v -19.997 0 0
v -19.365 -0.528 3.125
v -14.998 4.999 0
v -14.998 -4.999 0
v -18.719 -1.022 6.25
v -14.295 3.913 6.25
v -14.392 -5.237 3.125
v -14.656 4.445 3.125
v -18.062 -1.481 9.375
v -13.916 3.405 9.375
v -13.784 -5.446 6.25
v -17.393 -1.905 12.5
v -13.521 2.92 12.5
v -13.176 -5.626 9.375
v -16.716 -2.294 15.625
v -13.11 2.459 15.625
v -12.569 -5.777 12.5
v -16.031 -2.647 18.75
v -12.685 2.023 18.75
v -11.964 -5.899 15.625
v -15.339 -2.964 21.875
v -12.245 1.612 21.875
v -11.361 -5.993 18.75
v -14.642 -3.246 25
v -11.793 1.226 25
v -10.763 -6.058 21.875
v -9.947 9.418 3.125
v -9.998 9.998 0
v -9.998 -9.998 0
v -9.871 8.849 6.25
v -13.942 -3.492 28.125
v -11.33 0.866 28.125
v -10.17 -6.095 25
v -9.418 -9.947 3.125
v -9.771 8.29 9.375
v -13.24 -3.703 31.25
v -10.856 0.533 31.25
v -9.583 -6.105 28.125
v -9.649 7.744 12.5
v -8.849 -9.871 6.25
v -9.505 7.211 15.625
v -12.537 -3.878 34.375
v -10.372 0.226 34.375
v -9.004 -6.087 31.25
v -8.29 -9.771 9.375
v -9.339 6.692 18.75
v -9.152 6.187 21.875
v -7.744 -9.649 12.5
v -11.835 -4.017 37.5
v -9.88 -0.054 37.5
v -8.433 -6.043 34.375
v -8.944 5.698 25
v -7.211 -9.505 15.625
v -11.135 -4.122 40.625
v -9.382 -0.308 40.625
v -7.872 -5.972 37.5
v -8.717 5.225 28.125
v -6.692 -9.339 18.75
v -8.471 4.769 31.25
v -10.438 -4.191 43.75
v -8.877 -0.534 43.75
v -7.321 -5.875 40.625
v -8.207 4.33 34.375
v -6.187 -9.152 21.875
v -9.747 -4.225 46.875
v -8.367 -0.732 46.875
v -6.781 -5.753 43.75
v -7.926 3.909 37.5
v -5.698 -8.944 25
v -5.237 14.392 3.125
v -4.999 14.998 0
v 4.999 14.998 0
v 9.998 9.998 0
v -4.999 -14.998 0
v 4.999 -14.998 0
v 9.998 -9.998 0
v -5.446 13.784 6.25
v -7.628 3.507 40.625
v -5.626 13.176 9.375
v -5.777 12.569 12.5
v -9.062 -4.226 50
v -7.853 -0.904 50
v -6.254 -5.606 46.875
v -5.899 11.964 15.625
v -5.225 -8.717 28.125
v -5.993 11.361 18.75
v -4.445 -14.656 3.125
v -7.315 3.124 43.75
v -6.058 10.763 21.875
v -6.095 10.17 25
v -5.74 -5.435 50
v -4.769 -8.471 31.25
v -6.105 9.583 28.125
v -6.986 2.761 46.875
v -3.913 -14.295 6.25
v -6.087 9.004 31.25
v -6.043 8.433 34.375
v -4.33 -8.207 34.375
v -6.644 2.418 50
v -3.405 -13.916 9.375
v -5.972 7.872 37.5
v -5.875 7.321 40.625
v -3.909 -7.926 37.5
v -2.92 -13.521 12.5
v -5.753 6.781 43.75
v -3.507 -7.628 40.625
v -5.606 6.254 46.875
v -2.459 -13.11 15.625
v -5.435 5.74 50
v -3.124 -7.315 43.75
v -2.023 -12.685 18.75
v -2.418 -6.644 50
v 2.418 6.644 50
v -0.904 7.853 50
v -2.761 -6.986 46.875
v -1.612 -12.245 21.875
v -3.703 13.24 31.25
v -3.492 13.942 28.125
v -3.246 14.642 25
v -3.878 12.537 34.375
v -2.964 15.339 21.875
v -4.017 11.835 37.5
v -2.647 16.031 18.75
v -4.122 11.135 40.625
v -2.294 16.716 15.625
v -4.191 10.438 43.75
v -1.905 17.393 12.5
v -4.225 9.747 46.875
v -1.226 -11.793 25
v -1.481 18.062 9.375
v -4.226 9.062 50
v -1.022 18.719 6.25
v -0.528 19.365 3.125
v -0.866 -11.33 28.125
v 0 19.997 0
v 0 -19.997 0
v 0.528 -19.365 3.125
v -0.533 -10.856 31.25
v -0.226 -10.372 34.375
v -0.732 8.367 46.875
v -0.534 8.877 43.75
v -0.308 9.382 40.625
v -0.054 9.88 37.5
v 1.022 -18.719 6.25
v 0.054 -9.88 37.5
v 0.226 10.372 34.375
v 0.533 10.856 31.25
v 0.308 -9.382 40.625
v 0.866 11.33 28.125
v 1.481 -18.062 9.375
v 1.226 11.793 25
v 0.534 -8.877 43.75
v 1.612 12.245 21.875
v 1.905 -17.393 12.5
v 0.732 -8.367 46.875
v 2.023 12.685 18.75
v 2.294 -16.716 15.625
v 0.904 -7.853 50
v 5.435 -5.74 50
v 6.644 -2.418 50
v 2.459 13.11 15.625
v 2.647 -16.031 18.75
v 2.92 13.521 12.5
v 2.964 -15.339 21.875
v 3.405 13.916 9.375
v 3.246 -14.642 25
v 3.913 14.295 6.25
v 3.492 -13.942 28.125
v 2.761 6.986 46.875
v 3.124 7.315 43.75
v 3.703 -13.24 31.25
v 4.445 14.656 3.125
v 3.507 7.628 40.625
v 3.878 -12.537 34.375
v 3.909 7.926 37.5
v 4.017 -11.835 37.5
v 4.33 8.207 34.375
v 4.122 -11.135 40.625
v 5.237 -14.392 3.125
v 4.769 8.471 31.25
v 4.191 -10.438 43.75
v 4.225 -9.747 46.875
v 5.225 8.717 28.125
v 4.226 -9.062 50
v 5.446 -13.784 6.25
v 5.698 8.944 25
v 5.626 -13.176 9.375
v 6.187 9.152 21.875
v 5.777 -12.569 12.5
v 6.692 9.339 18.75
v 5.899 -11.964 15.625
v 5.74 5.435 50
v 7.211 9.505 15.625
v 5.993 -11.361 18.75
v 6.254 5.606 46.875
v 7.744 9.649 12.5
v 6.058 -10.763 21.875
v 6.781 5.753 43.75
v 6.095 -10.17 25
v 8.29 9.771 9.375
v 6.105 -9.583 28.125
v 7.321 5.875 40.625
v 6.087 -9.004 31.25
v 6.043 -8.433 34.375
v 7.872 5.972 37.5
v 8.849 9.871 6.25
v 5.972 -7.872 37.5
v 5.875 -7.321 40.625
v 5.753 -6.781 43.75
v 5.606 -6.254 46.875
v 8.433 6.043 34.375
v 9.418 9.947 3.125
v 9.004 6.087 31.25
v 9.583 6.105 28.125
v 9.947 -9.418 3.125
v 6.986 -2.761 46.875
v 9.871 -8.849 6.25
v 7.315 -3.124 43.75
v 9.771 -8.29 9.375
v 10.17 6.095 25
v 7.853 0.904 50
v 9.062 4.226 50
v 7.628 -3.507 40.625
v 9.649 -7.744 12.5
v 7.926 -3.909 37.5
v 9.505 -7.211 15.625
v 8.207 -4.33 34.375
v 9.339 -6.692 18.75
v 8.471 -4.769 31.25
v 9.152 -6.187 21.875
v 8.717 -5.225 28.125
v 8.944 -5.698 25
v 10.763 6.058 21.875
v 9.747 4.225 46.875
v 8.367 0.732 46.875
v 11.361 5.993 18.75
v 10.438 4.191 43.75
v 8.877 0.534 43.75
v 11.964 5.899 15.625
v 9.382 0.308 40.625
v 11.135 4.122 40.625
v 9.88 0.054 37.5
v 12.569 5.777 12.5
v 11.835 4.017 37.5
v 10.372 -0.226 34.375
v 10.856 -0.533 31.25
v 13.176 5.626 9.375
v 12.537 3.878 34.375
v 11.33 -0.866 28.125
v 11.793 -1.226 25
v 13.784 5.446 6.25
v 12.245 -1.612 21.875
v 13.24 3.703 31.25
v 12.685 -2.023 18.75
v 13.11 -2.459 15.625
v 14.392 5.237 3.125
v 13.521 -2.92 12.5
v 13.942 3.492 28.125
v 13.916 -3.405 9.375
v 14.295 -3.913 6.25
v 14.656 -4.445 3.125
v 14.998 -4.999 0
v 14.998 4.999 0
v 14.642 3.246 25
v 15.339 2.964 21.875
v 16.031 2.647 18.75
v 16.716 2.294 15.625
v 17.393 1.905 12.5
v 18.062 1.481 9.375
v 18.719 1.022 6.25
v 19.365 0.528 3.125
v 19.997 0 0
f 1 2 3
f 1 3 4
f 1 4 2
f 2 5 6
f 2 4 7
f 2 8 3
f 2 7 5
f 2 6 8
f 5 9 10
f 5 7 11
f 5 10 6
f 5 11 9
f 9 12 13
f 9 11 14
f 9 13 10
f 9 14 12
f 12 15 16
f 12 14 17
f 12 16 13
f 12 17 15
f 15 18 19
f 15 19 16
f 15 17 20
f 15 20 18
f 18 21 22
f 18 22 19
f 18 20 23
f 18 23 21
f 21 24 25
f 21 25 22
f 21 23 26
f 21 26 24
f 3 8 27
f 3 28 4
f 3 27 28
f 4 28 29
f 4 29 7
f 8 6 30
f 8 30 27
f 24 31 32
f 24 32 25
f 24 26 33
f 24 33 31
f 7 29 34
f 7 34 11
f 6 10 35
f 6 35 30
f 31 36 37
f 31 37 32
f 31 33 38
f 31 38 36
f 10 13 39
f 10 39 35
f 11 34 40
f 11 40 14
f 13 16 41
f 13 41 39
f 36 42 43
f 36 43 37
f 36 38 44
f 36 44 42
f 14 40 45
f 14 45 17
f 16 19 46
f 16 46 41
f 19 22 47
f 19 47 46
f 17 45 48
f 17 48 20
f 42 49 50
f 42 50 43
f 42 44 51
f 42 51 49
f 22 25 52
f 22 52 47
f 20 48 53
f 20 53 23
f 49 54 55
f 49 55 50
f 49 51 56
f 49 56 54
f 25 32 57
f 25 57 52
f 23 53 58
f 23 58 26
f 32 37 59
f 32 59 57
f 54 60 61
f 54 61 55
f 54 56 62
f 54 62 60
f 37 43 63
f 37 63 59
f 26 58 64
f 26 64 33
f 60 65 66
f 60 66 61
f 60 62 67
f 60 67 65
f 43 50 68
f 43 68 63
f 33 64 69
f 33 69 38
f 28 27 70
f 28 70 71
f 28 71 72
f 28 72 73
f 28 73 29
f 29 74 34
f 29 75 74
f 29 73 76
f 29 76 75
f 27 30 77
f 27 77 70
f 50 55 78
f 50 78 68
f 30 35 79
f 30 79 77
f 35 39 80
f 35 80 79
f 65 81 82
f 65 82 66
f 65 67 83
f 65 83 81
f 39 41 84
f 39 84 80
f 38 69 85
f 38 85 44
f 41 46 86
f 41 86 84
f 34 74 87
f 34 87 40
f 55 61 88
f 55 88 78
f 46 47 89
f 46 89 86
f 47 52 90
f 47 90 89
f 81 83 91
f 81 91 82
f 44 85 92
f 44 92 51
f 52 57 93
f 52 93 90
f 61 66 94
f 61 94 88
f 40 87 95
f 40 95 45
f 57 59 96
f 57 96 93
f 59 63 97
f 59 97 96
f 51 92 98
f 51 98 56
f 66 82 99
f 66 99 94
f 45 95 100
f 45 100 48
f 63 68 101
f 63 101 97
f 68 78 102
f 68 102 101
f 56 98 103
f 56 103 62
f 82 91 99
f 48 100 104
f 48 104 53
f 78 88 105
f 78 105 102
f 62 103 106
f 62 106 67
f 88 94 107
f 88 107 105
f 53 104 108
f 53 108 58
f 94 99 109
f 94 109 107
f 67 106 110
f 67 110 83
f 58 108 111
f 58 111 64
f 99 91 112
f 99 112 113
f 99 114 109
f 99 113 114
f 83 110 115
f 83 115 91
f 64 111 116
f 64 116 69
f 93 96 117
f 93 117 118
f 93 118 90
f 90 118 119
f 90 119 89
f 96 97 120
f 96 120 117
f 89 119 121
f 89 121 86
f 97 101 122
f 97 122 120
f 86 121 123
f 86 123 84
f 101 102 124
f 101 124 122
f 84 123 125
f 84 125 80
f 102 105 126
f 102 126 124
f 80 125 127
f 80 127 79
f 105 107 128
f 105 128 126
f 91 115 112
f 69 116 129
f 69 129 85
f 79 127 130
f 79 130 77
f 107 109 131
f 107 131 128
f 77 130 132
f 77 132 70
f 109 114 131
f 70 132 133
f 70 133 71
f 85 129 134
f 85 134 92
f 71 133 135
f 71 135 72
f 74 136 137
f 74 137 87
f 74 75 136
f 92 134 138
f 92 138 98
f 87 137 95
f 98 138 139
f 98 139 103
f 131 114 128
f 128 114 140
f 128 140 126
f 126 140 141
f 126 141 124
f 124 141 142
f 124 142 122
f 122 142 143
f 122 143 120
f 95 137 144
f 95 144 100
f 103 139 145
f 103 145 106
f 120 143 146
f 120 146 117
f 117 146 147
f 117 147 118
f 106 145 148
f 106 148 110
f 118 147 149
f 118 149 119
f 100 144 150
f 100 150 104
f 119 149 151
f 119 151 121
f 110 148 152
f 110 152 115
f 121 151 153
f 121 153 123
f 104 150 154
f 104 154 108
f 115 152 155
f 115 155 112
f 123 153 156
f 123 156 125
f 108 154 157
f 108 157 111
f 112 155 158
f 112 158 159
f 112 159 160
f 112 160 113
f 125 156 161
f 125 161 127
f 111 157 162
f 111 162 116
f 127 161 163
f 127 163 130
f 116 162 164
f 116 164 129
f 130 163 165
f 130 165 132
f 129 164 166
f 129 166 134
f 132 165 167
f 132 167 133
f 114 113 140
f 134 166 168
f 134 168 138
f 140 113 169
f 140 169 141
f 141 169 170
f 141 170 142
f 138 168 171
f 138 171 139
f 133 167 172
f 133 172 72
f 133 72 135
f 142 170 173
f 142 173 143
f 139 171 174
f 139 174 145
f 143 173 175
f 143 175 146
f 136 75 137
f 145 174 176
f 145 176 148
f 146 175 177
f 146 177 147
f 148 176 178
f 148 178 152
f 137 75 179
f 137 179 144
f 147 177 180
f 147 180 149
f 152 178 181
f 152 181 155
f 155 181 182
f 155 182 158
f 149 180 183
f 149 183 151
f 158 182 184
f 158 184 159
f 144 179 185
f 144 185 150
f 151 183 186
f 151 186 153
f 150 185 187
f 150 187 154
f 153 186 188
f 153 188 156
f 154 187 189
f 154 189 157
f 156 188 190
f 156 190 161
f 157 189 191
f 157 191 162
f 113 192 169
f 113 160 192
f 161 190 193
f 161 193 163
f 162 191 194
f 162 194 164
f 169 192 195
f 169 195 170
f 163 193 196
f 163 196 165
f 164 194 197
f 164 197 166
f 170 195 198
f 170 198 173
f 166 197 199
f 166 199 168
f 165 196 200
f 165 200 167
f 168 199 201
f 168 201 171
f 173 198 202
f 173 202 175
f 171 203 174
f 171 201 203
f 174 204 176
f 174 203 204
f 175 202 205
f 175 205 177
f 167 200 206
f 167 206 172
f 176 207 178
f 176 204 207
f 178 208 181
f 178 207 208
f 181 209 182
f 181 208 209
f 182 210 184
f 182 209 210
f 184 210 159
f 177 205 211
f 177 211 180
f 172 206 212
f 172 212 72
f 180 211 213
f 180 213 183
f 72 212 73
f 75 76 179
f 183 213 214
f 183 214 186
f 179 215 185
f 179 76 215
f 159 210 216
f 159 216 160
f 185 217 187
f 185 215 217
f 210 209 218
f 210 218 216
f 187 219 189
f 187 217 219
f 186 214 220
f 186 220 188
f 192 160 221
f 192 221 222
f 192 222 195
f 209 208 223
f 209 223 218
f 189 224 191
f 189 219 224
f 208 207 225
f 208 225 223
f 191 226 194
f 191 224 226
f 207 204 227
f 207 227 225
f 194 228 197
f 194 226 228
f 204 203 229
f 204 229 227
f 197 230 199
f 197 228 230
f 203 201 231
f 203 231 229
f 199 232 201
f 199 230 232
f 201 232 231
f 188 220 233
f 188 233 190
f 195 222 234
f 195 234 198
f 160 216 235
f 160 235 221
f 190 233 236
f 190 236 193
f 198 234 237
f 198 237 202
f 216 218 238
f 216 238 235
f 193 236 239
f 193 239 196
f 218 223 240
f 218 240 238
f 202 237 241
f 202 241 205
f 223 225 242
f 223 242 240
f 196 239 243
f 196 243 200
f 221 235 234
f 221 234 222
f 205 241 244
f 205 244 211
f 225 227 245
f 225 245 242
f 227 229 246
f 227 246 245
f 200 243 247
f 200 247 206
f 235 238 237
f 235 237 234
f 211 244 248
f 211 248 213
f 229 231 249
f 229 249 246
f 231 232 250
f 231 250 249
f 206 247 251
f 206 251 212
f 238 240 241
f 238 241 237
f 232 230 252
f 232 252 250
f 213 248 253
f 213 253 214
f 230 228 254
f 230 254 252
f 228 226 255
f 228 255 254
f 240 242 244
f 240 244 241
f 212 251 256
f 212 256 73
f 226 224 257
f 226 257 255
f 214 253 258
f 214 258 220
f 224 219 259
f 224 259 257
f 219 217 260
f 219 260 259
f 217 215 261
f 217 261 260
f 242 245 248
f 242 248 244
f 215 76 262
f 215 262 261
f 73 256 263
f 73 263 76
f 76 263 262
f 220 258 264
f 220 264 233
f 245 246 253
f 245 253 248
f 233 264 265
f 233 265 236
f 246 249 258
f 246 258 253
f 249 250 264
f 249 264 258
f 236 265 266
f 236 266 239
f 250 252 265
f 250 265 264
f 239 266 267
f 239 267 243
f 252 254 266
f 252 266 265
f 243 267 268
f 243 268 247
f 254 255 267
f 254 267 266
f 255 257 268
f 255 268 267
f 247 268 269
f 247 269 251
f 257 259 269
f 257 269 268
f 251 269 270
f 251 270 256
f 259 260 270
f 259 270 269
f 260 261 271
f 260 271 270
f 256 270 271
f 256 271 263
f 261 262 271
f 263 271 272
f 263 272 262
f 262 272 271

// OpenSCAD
// Start: lazy_union
default_5_default_5();
// End: lazy_union

// Modules.

// 'PartMaterial undef-default - default 5.0'
module default_5_default_5() {
  // 'None : _combine_solids_and_holes'
  union() {
    // 'scaled : _combine_solids_and_holes'
    union() {
      // 'prism'
      multmatrix(m=[[-1.0, -0.0, -0.0, -0.0], [-0.0, -1.0, -0.0, -0.0], [0.0, 0.0, 1.0, 0.0], [0.0, 0.0, 0.0, 1.0]]) {
        // 'prism : _combine_solids_and_holes'
        union() {
          // 'prism'
          polyhedron(points=[[-19.996979771955562, 0.0, 0.0], [-14.997734828966673, 4.999244942988891, 0.0], [-9.998489885977783, 9.998489885977781, 0.0], [-4.999244942988891, 14.99773482896667, 0.0], [-1.2244618635169875e-15, 19.996979771955562, 0.0], [4.999244942988891, 14.99773482896667, 0.0], [9.998489885977781, 9.998489885977781, 0.0], [14.99773482896667, 4.999244942988892, 0.0], [19.996979771955562, 2.448923727033975e-15, 0.0], [14.997734828966673, -4.999244942988888, 0.0], [9.998489885977783, -9.99848988597778, 0.0], [4.999244942988893, -14.99773482896667, 0.0], [3.673385590550962e-15, -19.996979771955562, 0.0], [-4.999244942988888, -14.997734828966674, 0.0], [-9.99848988597778, -9.998489885977785, 0.0], [-14.99773482896667, -4.999244942988895, 0.0], [-19.364871144392705, -0.5282258913729057, 3.125], [-14.655709831137758, 4.445048367568498, 3.125], [-9.946548517882807, 9.4183226265099, 3.125], [-5.237387204627856, 14.391596885451303, 3.125], [-0.5282258913729069, 19.364871144392705, 3.125], [4.445048367568498, 14.655709831137756, 3.125], [9.4183226265099, 9.946548517882805, 3.125], [14.391596885451303, 5.237387204627857, 3.125], [19.364871144392705, 0.528225891372908, 3.125], [14.655709831137758, -4.4450483675684955, 3.125], [9.946548517882807, -9.418322626509898, 3.125], [5.237387204627858, -14.391596885451303, 3.125], [0.5282258913729092, -19.364871144392705, 3.125], [-4.445048367568495, -14.65570983113776, 3.125], [-9.418322626509898, -9.946548517882809, 3.125], [-14.391596885451303, -5.23738720462786, 3.125], [-18.719291101775188, -1.0219925498751101, 6.25], [-14.294966463800169, 3.913328363037465, 6.25], [-9.870641825825151, 8.848649275950038, 6.25], [-5.446317187850131, 13.783970188862613, 6.25], [-1.0219925498751112, 18.719291101775188, 6.25], [3.9133283630374653, 14.294966463800167, 6.25], [8.848649275950038, 9.87064182582515, 6.25], [13.783970188862613, 5.4463171878501315, 6.25], [18.719291101775188, 1.0219925498751123, 6.25], [14.294966463800169, -3.9133283630374613, 6.25], [9.87064182582515, -8.848649275950036, 6.25], [5.446317187850132, -13.783970188862613, 6.25], [1.0219925498751135, -18.719291101775188, 6.25], [-3.9133283630374613, -14.29496646380017, 6.25], [-8.848649275950036, -9.870641825825153, 6.25], [-13.783970188862613, -5.446317187850134, 6.25], [-18.061648285696783, -1.480970791419059, 9.375], [-13.916478912127355, 3.4046839778599027, 9.375], [-9.771309538557922, 8.290338747138861, 9.375], [-5.626140164988491, 13.175993516417822, 9.375], [-1.4809707914190602, 18.061648285696783, 9.375], [3.4046839778599027, 13.916478912127353, 9.375], [8.290338747138863, 9.77130953855792, 9.375], [13.175993516417822, 5.626140164988492, 9.375], [18.061648285696783, 1.4809707914190613, 9.375], [13.916478912127355, -3.404683977859899, 9.375], [9.771309538557922, -8.290338747138861, 9.375], [5.626140164988493, -13.175993516417822, 9.375], [1.4809707914190624, -18.061648285696783, 9.375], [-3.4046839778598987, -13.916478912127356, 9.375], [-8.29033874713886, -9.771309538557924, 9.375], [-13.175993516417822, -5.626140164988494, 9.375], [-17.39335892666395, -1.9048826074694092, 12.5], [-13.521239846865315, 2.9196777760639314, 12.5], [-9.649120767066682, 7.744238159597271, 12.5], [-5.777001687268045, 12.568798543130608, 12.5], [-1.9048826074694103, 17.39335892666395, 12.5], [2.9196777760639314, 13.521239846865313, 12.5], [7.744238159597271, 9.64912076706668, 12.5], [12.568798543130608, 5.777001687268045, 12.5], [17.39335892666395, 1.9048826074694114, 12.5], [13.521239846865315, -2.919677776063928, 12.5], [9.64912076706668, -7.744238159597269, 12.5], [5.777001687268046, -12.568798543130608, 12.5], [1.9048826074694123, -17.39335892666395, 12.5], [-2.919677776063928, -13.521239846865317, 12.5], [-7.744238159597268, -9.64912076706668, 12.5], [-12.568798543130608, -5.777001687268048, 12.5], [-16.715845101425003, -2.2935013247032767, 15.625], [-13.110259157244572, 2.458835281828794, 15.625], [-9.504673213064141, 7.211171888360863, 15.625], [-5.899087268883709, 11.963508494892933, 15.625], [-2.2935013247032776, 16.715845101425003, 15.625], [2.4588352818287946, 13.110259157244572, 15.625], [7.211171888360863, 9.504673213064141, 15.625], [11.963508494892933, 5.89908726888371, 15.625], [16.715845101425003, 2.293501324703279, 15.625], [13.110259157244572, -2.4588352818287915, 15.625], [9.504673213064141, -7.2111718883608615, 15.625], [5.899087268883711, -11.963508494892933, 15.625], [2.29350132470328, -16.715845101425003, 15.625], [-2.458835281828791, -13.110259157244574, 15.625], [-7.211171888360861, -9.504673213064143, 15.625], [-11.963508494892933, -5.8990872688837115, 15.625], [-16.03053298749188, -2.646651707711957, 18.75], [-12.684562667546901, 2.0226444660890026, 18.75], [-9.338592347601919, 6.691940639889962, 18.75], [-5.992622027656938, 11.361236813690919, 18.75], [-2.646651707711958, 16.03053298749188, 18.75], [2.0226444660890026, 12.6845626675469, 18.75], [6.691940639889962, 9.338592347601919, 18.75], [11.361236813690919, 5.992622027656939, 18.75], [16.03053298749188, 2.6466517077119587, 18.75], [12.6845626675469, -2.022644466089, 18.75], [9.338592347601919, -6.69194063988996, 18.75], [5.99262202765694, -11.361236813690919, 18.75], [2.64665170771196, -16.03053298749188, 18.75], [-2.022644466089, -12.684562667546901, 18.75], [-6.69194063988996, -9.33859234760192, 18.75], [-11.361236813690919, -5.9926220276569415, 18.75], [-15.338851116664092, -2.9642100047167173, 21.875], [-12.24519083867725, 1.611555275628485, 21.875], [-9.151530560690405, 6.187320555973686, 21.875], [-6.057870282703561, 10.763085836318888, 21.875], [-2.964210004716718, 15.338851116664092, 21.875], [1.6115552756284854, 12.245190838677248, 21.875], [6.187320555973687, 9.151530560690404, 21.875], [10.763085836318888, 6.057870282703562, 21.875], [15.338851116664092, 2.964210004716719, 21.875], [12.24519083867725, -1.6115552756284823, 21.875], [9.151530560690405, -6.187320555973685, 21.875], [6.057870282703563, -10.763085836318888, 21.875], [2.96421000471672, -15.338851116664092, 21.875], [-1.6115552756284823, -12.245190838677251, 21.875], [-6.187320555973685, -9.151530560690407, 21.875], [-10.763085836318888, -6.057870282703565, 21.875], [-14.642228629363718, -3.246103936327586, 25.0], [-11.793197456104686, 1.2259792050952405, 25.0], [-8.944166282845654, 5.698062346518066, 25.0], [-6.09513510958662, 10.170145487940891, 25.0], [-3.2461039363275868, 14.642228629363718, 25.0], [1.2259792050952405, 11.793197456104684, 25.0], [5.698062346518066, 8.944166282845652, 25.0], [10.170145487940891, 6.09513510958662, 25.0], [14.642228629363718, 3.2461039363275876, 25.0], [11.793197456104686, -1.2259792050952378, 25.0], [8.944166282845652, -5.698062346518064, 25.0], [6.095135109586621, -10.170145487940891, 25.0], [3.2461039363275885, -14.642228629363718, 25.0], [-1.2259792050952374, -11.793197456104686, 25.0], [-5.698062346518063, -8.944166282845654, 25.0], [-10.170145487940891, -6.0951351095866215, 25.0], [-13.942093531587751, -3.492312627430278, 28.125], [-11.329648305548384, 0.8662889123242294, 28.125], [-8.717203079509016, 5.2248904520787365, 28.125], [-6.104757853469646, 9.583491991833244, 28.125], [-3.492312627430279, 13.942093531587751, 28.125], [0.8662889123242299, 11.329648305548384, 28.125], [5.2248904520787365, 8.717203079509014, 28.125], [9.583491991833244, 6.104757853469648, 28.125], [13.942093531587751, 3.49231262743028, 28.125], [11.329648305548382, -0.8662889123242272, 28.125], [8.717203079509016, -5.224890452078735, 28.125], [6.104757853469648, -9.583491991833244, 28.125], [3.4923126274302807, -13.942093531587751, 28.125], [-0.8662889123242272, -11.329648305548384, 28.125], [-5.224890452078734, -8.717203079509018, 28.125], [-9.583491991833244, -6.10475785346965, 28.125], [-13.239870956279901, -3.702866482342555, 31.25], [-10.855619837795565, 0.5328178773130596, 31.25], [-8.47136871931123, 4.768502236968673, 31.25], [-6.0871176008268915, 9.004186596624287, 31.25], [-3.702866482342556, 13.239870956279901, 31.25], [0.5328178773130596, 10.855619837795565, 31.25], [4.768502236968673, 8.471368719311227, 31.25], [9.004186596624287, 6.087117600826893, 31.25], [13.239870956279901, 3.7028664823425568, 31.25], [10.855619837795563, -0.5328178773130574, 31.25], [8.47136871931123, -4.768502236968672, 31.25], [6.087117600826893, -9.004186596624287, 31.25], [3.702866482342557, -13.239870956279901, 31.25], [-0.532817877313057, -10.855619837795565, 31.25], [-4.768502236968672, -8.471368719311231, 31.25], [-9.004186596624287, -6.087117600826895, 31.25], [-12.536981430918008, -3.8778470034372194, 34.375], [-10.372197824047811, 0.2258601051515874, 34.375], [-8.207414217177615, 4.329567213740393, 34.375], [-6.042630610307417, 8.4332743223292, 34.375], [-3.8778470034372203, 12.536981430918008, 34.375], [0.22586010515158783, 10.37219782404781, 34.375], [4.329567213740394, 8.207414217177615, 34.375], [8.4332743223292, 6.042630610307418, 34.375], [12.536981430918008, 3.8778470034372208, 34.375], [10.372197824047811, -0.22586010515158517, 34.375], [8.207414217177615, -4.329567213740393, 34.375], [6.042630610307418, -8.433274322329199, 34.375], [3.8778470034372217, -12.536981430918008, 34.375], [-0.22586010515158517, -10.372197824047811, 34.375], [-4.329567213740392, -8.207414217177615, 34.375], [-8.433274322329199, -6.04263061030742, 34.375], [-11.834839153105555, -4.017386553484709, 37.5], [-9.880476003200346, -0.05433012683714189, 37.5], [-7.926112853295134, 3.908726299810423, 37.5], [-5.971749703389921, 7.871782726457989, 37.5], [-4.01738655348471, 11.834839153105555, 37.5], [-0.054330126837141446, 9.880476003200345, 37.5], [3.9087262998104233, 7.926112853295132, 37.5], [7.8717827264579885, 5.971749703389921, 37.5], [11.834839153105555, 4.017386553484711, 37.5], [9.880476003200345, 0.05433012683714411, 37.5], [7.926112853295134, -3.908726299810422, 37.5], [5.971749703389921, -7.8717827264579885, 37.5], [4.017386553484711, -11.834839153105555, 37.5], [0.054330126837144554, -9.880476003200345, 37.5], [-3.9087262998104215, -7.926112853295134, 37.5], [-7.8717827264579885, -5.971749703389923, 37.5], [-11.134850275946418, -4.121668062023674, 40.625], [-9.381554722465731, -0.3075384775311507, 40.625], [-7.628259168985046, 3.5065911069613716, 40.625], [-5.87496361550436, 7.320720691453895, 40.625], [-4.121668062023675, 11.134850275946418, 40.625], [-0.30753847753115027, 9.381554722465731, 40.625], [3.506591106961372, 7.628259168985046, 40.625], [7.320720691453894, 5.8749636155043605, 40.625], [11.134850275946418, 4.121668062023676, 40.625], [9.381554722465731, 0.30753847753115293, 40.625], [7.628259168985046, -3.5065911069613707, 40.625], [5.874963615504361, -7.320720691453894, 40.625], [4.121668062023676, -11.134850275946418, 40.625], [0.3075384775311534, -9.381554722465733, 40.625], [-3.50659110696137, -7.628259168985047, 40.625], [-7.320720691453894, -5.874963615504361, 40.625], [-10.438411204970931, -4.19092467612307, 43.75], [-8.876539572758967, -0.5335907058495692, 43.75], [-7.314667940547002, 3.1237432644239305, 43.75], [-5.752796308335036, 6.78107723469743, 43.75], [-4.190924676123071, 10.438411204970931, 43.75], [-0.5335907058495688, 8.876539572758965, 43.75], [3.1237432644239305, 7.314667940547, 43.75], [6.78107723469743, 5.752796308335036, 43.75], [10.438411204970931, 4.190924676123071, 43.75], [8.876539572758965, 0.533590705849571, 43.75], [7.314667940547001, -3.1237432644239296, 43.75], [5.752796308335036, -6.78107723469743, 43.75], [4.190924676123072, -10.438411204970931, 43.75], [0.5335907058495715, -8.876539572758967, 43.75], [-3.123743264423929, -7.314667940547002, 43.75], [-6.781077234697429, -5.7527963083350375, 43.75], [-9.746906908368677, -4.225439355953999, 46.875], [-8.366540020265008, -0.73235278987333, 46.875], [-6.986173132161339, 2.7607337762073385, 46.875], [-5.6058062440576695, 6.253820342288007, 46.875], [-4.225439355954, 9.746906908368677, 46.875], [-0.7323527898733295, 8.366540020265008, 46.875], [2.760733776207339, 6.986173132161339, 46.875], [6.253820342288007, 5.6058062440576695, 46.875], [9.746906908368677, 4.225439355954, 46.875], [8.366540020265008, 0.7323527898733317, 46.875], [6.986173132161339, -2.7607337762073376, 46.875], [5.6058062440576695, -6.253820342288007, 46.875], [4.225439355954001, -9.746906908368677, 46.875], [0.7323527898733317, -8.366540020265008, 46.875], [-2.7607337762073376, -6.98617313216134, 46.875], [-6.253820342288007, -5.605806244057671, 46.875], [-9.061709242268849, -4.225544415643894, 50.0], [-7.852668035612611, -0.903731001165708, 50.0], [-6.643626828956372, 2.418082413312477, 50.0], [-5.434585622300133, 5.739895827790662, 50.0], [-4.225544415643895, 9.061709242268849, 50.0], [-0.9037310011657076, 7.85266803561261, 50.0], [2.4180824133124776, 6.643626828956371, 50.0], [5.739895827790662, 5.434585622300133, 50.0], [9.061709242268849, 4.225544415643895, 50.0], [7.85266803561261, 0.9037310011657098, 50.0], [6.643626828956371, -2.4180824133124763, 50.0], [5.434585622300133, -5.739895827790662, 50.0], [4.2255444156438955, -9.061709242268849, 50.0], [0.9037310011657103, -7.852668035612611, 50.0], [-2.418082413312476, -6.643626828956373, 50.0], [-5.7398958277906615, -5.434585622300135, 50.0]], faces=[[1, 17, 16, 0], [2, 18, 17, 1], [3, 19, 18, 2], [4, 20, 19, 3], [5, 21, 20, 4], [6, 22, 21, 5], [7, 23, 22, 6], [8, 24, 23, 7], [9, 25, 24, 8], [10, 26, 25, 9], [11, 27, 26, 10], [12, 28, 27, 11], [13, 29, 28, 12], [14, 30, 29, 13], [15, 31, 30, 14], [0, 16, 31, 15], [17, 33, 32, 16], [18, 34, 33, 17], [19, 35, 34, 18], [20, 36, 35, 19], [21, 37, 36, 20], [22, 38, 37, 21], [23, 39, 38, 22], [24, 40, 39, 23], [25, 41, 40, 24], [26, 42, 41, 25], [27, 43, 42, 26], [28, 44, 43, 27], [29, 45, 44, 28], [30, 46, 45, 29], [31, 47, 46, 30], [16, 32, 47, 31], [33, 49, 48, 32], [34, 50, 49, 33], [35, 51, 50, 34], [36, 52, 51, 35], [37, 53, 52, 36], [38, 54, 53, 37], [39, 55, 54, 38], [40, 56, 55, 39], [41, 57, 56, 40], [42, 58, 57, 41], [43, 59, 58, 42], [44, 60, 59, 43], [45, 61, 60, 44], [46, 62, 61, 45], [47, 63, 62, 46], [32, 48, 63, 47], [49, 65, 64, 48], [50, 66, 65, 49], [51, 67, 66, 50], [52, 68, 67, 51], [53, 69, 68, 52], [54, 70, 69, 53], [55, 71, 70, 54], [56, 72, 71, 55], [57, 73, 72, 56], [58, 74, 73, 57], [59, 75, 74, 58], [60, 76, 75, 59], [61, 77, 76, 60], [62, 78, 77, 61], [63, 79, 78, 62], [48, 64, 79, 63], [65, 81, 80, 64], [66, 82, 81, 65], [67, 83, 82, 66], [68, 84, 83, 67], [69, 85, 84, 68], [70, 86, 85, 69], [71, 87, 86, 70], [72, 88, 87, 71], [73, 89, 88, 72], [74, 90, 89, 73], [75, 91, 90, 74], [76, 92, 91, 75], [77, 93, 92, 76], [78, 94, 93, 77], [79, 95, 94, 78], [64, 80, 95, 79], [81, 97, 96, 80], [82, 98, 97, 81], [83, 99, 98, 82], [84, 100, 99, 83], [85, 101, 100, 84], [86, 102, 101, 85], [87, 103, 102, 86], [88, 104, 103, 87], [89, 105, 104, 88], [90, 106, 105, 89], [91, 107, 106, 90], [92, 108, 107, 91], [93, 109, 108, 92], [94, 110, 109, 93], [95, 111, 110, 94], [80, 96, 111, 95], [97, 113, 112, 96], [98, 114, 113, 97], [99, 115, 114, 98], [100, 116, 115, 99], [101, 117, 116, 100], [102, 118, 117, 101], [103, 119, 118, 102], [104, 120, 119, 103], [105, 121, 120, 104], [106, 122, 121, 105], [107, 123, 122, 106], [108, 124, 123, 107], [109, 125, 124, 108], [110, 126, 125, 109], [111, 127, 126, 110], [96, 112, 127, 111], [113, 129, 128, 112], [114, 130, 129, 113], [115, 131, 130, 114], [116, 132, 131, 115], [117, 133, 132, 116], [118, 134, 133, 117], [119, 135, 134, 118], [120, 136, 135, 119], [121, 137, 136, 120], [122, 138, 137, 121], [123, 139, 138, 122], [124, 140, 139, 123], [125, 141, 140, 124], [126, 142, 141, 125], [127, 143, 142, 126], [112, 128, 143, 127], [129, 145, 144, 128], [130, 146, 145, 129], [131, 147, 146, 130], [132, 148, 147, 131], [133, 149, 148, 132], [134, 150, 149, 133], [135, 151, 150, 134], [136, 152, 151, 135], [137, 153, 152, 136], [138, 154, 153, 137], [139, 155, 154, 138], [140, 156, 155, 139], [141, 157, 156, 140], [142, 158, 157, 141], [143, 159, 158, 142], [128, 144, 159, 143], [145, 161, 160, 144], [146, 162, 161, 145], [147, 163, 162, 146], [148, 164, 163, 147], [149, 165, 164, 148], [150, 166, 165, 149], [151, 167, 166, 150], [152, 168, 167, 151], [153, 169, 168, 152], [154, 170, 169, 153], [155, 171, 170, 154], [156, 172, 171, 155], [157, 173, 172, 156], [158, 174, 173, 157], [159, 175, 174, 158], [144, 160, 175, 159], [161, 177, 176, 160], [162, 178, 177, 161], [163, 179, 178, 162], [164, 180, 179, 163], [165, 181, 180, 164], [166, 182, 181, 165], [167, 183, 182, 166], [168, 184, 183, 167], [169, 185, 184, 168], [170, 186, 185, 169], [171, 187, 186, 170], [172, 188, 187, 171], [173, 189, 188, 172], [174, 190, 189, 173], [175, 191, 190, 174], [160, 176, 191, 175], [177, 193, 192, 176], [178, 194, 193, 177], [179, 195, 194, 178], [180, 196, 195, 179], [181, 197, 196, 180], [182, 198, 197, 181], [183, 199, 198, 182], [184, 200, 199, 183], [185, 201, 200, 184], [186, 202, 201, 185], [187, 203, 202, 186], [188, 204, 203, 187], [189, 205, 204, 188], [190, 206, 205, 189], [191, 207, 206, 190], [176, 192, 207, 191], [193, 209, 208, 192], [194, 210, 209, 193], [195, 211, 210, 194], [196, 212, 211, 195], [197, 213, 212, 196], [198, 214, 213, 197], [199, 215, 214, 198], [200, 216, 215, 199], [201, 217, 216, 200], [202, 218, 217, 201], [203, 219, 218, 202], [204, 220, 219, 203], [205, 221, 220, 204], [206, 222, 221, 205], [207, 223, 222, 206], [192, 208, 223, 207], [209, 225, 224, 208], [210, 226, 225, 209], [211, 227, 226, 210], [212, 228, 227, 211], [213, 229, 228, 212], [214, 230, 229, 213], [215, 231, 230, 214], [216, 232, 231, 215], [217, 233, 232, 216], [218, 234, 233, 217], [219, 235, 234, 218], [220, 236, 235, 219], [221, 237, 236, 220], [222, 238, 237, 221], [223, 239, 238, 222], [208, 224, 239, 223], [225, 241, 240, 224], [226, 242, 241, 225], [227, 243, 242, 226], [228, 244, 243, 227], [229, 245, 244, 228], [230, 246, 245, 229], [231, 247, 246, 230], [232, 248, 247, 231], [233, 249, 248, 232], [234, 250, 249, 233], [235, 251, 250, 234], [236, 252, 251, 235], [237, 253, 252, 236], [238, 254, 253, 237], [239, 255, 254, 238], [224, 240, 255, 239], [241, 257, 256, 240], [242, 258, 257, 241], [243, 259, 258, 242], [244, 260, 259, 243], [245, 261, 260, 244], [246, 262, 261, 245], [247, 263, 262, 246], [248, 264, 263, 247], [249, 265, 264, 248], [250, 266, 265, 249], [251, 267, 266, 250], [252, 268, 267, 251], [253, 269, 268, 252], [254, 270, 269, 253], [255, 271, 270, 254], [240, 256, 271, 255], [15, 14, 13, 12, 11, 10, 9, 8, 7, 6, 5, 4, 3, 2, 1, 0], [256, 257, 258, 259, 260, 261, 262, 263, 264, 265, 266, 267, 268, 269, 270, 271]], convexity=10);
        }
      }
    }
  }
} // end module default_5_default_5
